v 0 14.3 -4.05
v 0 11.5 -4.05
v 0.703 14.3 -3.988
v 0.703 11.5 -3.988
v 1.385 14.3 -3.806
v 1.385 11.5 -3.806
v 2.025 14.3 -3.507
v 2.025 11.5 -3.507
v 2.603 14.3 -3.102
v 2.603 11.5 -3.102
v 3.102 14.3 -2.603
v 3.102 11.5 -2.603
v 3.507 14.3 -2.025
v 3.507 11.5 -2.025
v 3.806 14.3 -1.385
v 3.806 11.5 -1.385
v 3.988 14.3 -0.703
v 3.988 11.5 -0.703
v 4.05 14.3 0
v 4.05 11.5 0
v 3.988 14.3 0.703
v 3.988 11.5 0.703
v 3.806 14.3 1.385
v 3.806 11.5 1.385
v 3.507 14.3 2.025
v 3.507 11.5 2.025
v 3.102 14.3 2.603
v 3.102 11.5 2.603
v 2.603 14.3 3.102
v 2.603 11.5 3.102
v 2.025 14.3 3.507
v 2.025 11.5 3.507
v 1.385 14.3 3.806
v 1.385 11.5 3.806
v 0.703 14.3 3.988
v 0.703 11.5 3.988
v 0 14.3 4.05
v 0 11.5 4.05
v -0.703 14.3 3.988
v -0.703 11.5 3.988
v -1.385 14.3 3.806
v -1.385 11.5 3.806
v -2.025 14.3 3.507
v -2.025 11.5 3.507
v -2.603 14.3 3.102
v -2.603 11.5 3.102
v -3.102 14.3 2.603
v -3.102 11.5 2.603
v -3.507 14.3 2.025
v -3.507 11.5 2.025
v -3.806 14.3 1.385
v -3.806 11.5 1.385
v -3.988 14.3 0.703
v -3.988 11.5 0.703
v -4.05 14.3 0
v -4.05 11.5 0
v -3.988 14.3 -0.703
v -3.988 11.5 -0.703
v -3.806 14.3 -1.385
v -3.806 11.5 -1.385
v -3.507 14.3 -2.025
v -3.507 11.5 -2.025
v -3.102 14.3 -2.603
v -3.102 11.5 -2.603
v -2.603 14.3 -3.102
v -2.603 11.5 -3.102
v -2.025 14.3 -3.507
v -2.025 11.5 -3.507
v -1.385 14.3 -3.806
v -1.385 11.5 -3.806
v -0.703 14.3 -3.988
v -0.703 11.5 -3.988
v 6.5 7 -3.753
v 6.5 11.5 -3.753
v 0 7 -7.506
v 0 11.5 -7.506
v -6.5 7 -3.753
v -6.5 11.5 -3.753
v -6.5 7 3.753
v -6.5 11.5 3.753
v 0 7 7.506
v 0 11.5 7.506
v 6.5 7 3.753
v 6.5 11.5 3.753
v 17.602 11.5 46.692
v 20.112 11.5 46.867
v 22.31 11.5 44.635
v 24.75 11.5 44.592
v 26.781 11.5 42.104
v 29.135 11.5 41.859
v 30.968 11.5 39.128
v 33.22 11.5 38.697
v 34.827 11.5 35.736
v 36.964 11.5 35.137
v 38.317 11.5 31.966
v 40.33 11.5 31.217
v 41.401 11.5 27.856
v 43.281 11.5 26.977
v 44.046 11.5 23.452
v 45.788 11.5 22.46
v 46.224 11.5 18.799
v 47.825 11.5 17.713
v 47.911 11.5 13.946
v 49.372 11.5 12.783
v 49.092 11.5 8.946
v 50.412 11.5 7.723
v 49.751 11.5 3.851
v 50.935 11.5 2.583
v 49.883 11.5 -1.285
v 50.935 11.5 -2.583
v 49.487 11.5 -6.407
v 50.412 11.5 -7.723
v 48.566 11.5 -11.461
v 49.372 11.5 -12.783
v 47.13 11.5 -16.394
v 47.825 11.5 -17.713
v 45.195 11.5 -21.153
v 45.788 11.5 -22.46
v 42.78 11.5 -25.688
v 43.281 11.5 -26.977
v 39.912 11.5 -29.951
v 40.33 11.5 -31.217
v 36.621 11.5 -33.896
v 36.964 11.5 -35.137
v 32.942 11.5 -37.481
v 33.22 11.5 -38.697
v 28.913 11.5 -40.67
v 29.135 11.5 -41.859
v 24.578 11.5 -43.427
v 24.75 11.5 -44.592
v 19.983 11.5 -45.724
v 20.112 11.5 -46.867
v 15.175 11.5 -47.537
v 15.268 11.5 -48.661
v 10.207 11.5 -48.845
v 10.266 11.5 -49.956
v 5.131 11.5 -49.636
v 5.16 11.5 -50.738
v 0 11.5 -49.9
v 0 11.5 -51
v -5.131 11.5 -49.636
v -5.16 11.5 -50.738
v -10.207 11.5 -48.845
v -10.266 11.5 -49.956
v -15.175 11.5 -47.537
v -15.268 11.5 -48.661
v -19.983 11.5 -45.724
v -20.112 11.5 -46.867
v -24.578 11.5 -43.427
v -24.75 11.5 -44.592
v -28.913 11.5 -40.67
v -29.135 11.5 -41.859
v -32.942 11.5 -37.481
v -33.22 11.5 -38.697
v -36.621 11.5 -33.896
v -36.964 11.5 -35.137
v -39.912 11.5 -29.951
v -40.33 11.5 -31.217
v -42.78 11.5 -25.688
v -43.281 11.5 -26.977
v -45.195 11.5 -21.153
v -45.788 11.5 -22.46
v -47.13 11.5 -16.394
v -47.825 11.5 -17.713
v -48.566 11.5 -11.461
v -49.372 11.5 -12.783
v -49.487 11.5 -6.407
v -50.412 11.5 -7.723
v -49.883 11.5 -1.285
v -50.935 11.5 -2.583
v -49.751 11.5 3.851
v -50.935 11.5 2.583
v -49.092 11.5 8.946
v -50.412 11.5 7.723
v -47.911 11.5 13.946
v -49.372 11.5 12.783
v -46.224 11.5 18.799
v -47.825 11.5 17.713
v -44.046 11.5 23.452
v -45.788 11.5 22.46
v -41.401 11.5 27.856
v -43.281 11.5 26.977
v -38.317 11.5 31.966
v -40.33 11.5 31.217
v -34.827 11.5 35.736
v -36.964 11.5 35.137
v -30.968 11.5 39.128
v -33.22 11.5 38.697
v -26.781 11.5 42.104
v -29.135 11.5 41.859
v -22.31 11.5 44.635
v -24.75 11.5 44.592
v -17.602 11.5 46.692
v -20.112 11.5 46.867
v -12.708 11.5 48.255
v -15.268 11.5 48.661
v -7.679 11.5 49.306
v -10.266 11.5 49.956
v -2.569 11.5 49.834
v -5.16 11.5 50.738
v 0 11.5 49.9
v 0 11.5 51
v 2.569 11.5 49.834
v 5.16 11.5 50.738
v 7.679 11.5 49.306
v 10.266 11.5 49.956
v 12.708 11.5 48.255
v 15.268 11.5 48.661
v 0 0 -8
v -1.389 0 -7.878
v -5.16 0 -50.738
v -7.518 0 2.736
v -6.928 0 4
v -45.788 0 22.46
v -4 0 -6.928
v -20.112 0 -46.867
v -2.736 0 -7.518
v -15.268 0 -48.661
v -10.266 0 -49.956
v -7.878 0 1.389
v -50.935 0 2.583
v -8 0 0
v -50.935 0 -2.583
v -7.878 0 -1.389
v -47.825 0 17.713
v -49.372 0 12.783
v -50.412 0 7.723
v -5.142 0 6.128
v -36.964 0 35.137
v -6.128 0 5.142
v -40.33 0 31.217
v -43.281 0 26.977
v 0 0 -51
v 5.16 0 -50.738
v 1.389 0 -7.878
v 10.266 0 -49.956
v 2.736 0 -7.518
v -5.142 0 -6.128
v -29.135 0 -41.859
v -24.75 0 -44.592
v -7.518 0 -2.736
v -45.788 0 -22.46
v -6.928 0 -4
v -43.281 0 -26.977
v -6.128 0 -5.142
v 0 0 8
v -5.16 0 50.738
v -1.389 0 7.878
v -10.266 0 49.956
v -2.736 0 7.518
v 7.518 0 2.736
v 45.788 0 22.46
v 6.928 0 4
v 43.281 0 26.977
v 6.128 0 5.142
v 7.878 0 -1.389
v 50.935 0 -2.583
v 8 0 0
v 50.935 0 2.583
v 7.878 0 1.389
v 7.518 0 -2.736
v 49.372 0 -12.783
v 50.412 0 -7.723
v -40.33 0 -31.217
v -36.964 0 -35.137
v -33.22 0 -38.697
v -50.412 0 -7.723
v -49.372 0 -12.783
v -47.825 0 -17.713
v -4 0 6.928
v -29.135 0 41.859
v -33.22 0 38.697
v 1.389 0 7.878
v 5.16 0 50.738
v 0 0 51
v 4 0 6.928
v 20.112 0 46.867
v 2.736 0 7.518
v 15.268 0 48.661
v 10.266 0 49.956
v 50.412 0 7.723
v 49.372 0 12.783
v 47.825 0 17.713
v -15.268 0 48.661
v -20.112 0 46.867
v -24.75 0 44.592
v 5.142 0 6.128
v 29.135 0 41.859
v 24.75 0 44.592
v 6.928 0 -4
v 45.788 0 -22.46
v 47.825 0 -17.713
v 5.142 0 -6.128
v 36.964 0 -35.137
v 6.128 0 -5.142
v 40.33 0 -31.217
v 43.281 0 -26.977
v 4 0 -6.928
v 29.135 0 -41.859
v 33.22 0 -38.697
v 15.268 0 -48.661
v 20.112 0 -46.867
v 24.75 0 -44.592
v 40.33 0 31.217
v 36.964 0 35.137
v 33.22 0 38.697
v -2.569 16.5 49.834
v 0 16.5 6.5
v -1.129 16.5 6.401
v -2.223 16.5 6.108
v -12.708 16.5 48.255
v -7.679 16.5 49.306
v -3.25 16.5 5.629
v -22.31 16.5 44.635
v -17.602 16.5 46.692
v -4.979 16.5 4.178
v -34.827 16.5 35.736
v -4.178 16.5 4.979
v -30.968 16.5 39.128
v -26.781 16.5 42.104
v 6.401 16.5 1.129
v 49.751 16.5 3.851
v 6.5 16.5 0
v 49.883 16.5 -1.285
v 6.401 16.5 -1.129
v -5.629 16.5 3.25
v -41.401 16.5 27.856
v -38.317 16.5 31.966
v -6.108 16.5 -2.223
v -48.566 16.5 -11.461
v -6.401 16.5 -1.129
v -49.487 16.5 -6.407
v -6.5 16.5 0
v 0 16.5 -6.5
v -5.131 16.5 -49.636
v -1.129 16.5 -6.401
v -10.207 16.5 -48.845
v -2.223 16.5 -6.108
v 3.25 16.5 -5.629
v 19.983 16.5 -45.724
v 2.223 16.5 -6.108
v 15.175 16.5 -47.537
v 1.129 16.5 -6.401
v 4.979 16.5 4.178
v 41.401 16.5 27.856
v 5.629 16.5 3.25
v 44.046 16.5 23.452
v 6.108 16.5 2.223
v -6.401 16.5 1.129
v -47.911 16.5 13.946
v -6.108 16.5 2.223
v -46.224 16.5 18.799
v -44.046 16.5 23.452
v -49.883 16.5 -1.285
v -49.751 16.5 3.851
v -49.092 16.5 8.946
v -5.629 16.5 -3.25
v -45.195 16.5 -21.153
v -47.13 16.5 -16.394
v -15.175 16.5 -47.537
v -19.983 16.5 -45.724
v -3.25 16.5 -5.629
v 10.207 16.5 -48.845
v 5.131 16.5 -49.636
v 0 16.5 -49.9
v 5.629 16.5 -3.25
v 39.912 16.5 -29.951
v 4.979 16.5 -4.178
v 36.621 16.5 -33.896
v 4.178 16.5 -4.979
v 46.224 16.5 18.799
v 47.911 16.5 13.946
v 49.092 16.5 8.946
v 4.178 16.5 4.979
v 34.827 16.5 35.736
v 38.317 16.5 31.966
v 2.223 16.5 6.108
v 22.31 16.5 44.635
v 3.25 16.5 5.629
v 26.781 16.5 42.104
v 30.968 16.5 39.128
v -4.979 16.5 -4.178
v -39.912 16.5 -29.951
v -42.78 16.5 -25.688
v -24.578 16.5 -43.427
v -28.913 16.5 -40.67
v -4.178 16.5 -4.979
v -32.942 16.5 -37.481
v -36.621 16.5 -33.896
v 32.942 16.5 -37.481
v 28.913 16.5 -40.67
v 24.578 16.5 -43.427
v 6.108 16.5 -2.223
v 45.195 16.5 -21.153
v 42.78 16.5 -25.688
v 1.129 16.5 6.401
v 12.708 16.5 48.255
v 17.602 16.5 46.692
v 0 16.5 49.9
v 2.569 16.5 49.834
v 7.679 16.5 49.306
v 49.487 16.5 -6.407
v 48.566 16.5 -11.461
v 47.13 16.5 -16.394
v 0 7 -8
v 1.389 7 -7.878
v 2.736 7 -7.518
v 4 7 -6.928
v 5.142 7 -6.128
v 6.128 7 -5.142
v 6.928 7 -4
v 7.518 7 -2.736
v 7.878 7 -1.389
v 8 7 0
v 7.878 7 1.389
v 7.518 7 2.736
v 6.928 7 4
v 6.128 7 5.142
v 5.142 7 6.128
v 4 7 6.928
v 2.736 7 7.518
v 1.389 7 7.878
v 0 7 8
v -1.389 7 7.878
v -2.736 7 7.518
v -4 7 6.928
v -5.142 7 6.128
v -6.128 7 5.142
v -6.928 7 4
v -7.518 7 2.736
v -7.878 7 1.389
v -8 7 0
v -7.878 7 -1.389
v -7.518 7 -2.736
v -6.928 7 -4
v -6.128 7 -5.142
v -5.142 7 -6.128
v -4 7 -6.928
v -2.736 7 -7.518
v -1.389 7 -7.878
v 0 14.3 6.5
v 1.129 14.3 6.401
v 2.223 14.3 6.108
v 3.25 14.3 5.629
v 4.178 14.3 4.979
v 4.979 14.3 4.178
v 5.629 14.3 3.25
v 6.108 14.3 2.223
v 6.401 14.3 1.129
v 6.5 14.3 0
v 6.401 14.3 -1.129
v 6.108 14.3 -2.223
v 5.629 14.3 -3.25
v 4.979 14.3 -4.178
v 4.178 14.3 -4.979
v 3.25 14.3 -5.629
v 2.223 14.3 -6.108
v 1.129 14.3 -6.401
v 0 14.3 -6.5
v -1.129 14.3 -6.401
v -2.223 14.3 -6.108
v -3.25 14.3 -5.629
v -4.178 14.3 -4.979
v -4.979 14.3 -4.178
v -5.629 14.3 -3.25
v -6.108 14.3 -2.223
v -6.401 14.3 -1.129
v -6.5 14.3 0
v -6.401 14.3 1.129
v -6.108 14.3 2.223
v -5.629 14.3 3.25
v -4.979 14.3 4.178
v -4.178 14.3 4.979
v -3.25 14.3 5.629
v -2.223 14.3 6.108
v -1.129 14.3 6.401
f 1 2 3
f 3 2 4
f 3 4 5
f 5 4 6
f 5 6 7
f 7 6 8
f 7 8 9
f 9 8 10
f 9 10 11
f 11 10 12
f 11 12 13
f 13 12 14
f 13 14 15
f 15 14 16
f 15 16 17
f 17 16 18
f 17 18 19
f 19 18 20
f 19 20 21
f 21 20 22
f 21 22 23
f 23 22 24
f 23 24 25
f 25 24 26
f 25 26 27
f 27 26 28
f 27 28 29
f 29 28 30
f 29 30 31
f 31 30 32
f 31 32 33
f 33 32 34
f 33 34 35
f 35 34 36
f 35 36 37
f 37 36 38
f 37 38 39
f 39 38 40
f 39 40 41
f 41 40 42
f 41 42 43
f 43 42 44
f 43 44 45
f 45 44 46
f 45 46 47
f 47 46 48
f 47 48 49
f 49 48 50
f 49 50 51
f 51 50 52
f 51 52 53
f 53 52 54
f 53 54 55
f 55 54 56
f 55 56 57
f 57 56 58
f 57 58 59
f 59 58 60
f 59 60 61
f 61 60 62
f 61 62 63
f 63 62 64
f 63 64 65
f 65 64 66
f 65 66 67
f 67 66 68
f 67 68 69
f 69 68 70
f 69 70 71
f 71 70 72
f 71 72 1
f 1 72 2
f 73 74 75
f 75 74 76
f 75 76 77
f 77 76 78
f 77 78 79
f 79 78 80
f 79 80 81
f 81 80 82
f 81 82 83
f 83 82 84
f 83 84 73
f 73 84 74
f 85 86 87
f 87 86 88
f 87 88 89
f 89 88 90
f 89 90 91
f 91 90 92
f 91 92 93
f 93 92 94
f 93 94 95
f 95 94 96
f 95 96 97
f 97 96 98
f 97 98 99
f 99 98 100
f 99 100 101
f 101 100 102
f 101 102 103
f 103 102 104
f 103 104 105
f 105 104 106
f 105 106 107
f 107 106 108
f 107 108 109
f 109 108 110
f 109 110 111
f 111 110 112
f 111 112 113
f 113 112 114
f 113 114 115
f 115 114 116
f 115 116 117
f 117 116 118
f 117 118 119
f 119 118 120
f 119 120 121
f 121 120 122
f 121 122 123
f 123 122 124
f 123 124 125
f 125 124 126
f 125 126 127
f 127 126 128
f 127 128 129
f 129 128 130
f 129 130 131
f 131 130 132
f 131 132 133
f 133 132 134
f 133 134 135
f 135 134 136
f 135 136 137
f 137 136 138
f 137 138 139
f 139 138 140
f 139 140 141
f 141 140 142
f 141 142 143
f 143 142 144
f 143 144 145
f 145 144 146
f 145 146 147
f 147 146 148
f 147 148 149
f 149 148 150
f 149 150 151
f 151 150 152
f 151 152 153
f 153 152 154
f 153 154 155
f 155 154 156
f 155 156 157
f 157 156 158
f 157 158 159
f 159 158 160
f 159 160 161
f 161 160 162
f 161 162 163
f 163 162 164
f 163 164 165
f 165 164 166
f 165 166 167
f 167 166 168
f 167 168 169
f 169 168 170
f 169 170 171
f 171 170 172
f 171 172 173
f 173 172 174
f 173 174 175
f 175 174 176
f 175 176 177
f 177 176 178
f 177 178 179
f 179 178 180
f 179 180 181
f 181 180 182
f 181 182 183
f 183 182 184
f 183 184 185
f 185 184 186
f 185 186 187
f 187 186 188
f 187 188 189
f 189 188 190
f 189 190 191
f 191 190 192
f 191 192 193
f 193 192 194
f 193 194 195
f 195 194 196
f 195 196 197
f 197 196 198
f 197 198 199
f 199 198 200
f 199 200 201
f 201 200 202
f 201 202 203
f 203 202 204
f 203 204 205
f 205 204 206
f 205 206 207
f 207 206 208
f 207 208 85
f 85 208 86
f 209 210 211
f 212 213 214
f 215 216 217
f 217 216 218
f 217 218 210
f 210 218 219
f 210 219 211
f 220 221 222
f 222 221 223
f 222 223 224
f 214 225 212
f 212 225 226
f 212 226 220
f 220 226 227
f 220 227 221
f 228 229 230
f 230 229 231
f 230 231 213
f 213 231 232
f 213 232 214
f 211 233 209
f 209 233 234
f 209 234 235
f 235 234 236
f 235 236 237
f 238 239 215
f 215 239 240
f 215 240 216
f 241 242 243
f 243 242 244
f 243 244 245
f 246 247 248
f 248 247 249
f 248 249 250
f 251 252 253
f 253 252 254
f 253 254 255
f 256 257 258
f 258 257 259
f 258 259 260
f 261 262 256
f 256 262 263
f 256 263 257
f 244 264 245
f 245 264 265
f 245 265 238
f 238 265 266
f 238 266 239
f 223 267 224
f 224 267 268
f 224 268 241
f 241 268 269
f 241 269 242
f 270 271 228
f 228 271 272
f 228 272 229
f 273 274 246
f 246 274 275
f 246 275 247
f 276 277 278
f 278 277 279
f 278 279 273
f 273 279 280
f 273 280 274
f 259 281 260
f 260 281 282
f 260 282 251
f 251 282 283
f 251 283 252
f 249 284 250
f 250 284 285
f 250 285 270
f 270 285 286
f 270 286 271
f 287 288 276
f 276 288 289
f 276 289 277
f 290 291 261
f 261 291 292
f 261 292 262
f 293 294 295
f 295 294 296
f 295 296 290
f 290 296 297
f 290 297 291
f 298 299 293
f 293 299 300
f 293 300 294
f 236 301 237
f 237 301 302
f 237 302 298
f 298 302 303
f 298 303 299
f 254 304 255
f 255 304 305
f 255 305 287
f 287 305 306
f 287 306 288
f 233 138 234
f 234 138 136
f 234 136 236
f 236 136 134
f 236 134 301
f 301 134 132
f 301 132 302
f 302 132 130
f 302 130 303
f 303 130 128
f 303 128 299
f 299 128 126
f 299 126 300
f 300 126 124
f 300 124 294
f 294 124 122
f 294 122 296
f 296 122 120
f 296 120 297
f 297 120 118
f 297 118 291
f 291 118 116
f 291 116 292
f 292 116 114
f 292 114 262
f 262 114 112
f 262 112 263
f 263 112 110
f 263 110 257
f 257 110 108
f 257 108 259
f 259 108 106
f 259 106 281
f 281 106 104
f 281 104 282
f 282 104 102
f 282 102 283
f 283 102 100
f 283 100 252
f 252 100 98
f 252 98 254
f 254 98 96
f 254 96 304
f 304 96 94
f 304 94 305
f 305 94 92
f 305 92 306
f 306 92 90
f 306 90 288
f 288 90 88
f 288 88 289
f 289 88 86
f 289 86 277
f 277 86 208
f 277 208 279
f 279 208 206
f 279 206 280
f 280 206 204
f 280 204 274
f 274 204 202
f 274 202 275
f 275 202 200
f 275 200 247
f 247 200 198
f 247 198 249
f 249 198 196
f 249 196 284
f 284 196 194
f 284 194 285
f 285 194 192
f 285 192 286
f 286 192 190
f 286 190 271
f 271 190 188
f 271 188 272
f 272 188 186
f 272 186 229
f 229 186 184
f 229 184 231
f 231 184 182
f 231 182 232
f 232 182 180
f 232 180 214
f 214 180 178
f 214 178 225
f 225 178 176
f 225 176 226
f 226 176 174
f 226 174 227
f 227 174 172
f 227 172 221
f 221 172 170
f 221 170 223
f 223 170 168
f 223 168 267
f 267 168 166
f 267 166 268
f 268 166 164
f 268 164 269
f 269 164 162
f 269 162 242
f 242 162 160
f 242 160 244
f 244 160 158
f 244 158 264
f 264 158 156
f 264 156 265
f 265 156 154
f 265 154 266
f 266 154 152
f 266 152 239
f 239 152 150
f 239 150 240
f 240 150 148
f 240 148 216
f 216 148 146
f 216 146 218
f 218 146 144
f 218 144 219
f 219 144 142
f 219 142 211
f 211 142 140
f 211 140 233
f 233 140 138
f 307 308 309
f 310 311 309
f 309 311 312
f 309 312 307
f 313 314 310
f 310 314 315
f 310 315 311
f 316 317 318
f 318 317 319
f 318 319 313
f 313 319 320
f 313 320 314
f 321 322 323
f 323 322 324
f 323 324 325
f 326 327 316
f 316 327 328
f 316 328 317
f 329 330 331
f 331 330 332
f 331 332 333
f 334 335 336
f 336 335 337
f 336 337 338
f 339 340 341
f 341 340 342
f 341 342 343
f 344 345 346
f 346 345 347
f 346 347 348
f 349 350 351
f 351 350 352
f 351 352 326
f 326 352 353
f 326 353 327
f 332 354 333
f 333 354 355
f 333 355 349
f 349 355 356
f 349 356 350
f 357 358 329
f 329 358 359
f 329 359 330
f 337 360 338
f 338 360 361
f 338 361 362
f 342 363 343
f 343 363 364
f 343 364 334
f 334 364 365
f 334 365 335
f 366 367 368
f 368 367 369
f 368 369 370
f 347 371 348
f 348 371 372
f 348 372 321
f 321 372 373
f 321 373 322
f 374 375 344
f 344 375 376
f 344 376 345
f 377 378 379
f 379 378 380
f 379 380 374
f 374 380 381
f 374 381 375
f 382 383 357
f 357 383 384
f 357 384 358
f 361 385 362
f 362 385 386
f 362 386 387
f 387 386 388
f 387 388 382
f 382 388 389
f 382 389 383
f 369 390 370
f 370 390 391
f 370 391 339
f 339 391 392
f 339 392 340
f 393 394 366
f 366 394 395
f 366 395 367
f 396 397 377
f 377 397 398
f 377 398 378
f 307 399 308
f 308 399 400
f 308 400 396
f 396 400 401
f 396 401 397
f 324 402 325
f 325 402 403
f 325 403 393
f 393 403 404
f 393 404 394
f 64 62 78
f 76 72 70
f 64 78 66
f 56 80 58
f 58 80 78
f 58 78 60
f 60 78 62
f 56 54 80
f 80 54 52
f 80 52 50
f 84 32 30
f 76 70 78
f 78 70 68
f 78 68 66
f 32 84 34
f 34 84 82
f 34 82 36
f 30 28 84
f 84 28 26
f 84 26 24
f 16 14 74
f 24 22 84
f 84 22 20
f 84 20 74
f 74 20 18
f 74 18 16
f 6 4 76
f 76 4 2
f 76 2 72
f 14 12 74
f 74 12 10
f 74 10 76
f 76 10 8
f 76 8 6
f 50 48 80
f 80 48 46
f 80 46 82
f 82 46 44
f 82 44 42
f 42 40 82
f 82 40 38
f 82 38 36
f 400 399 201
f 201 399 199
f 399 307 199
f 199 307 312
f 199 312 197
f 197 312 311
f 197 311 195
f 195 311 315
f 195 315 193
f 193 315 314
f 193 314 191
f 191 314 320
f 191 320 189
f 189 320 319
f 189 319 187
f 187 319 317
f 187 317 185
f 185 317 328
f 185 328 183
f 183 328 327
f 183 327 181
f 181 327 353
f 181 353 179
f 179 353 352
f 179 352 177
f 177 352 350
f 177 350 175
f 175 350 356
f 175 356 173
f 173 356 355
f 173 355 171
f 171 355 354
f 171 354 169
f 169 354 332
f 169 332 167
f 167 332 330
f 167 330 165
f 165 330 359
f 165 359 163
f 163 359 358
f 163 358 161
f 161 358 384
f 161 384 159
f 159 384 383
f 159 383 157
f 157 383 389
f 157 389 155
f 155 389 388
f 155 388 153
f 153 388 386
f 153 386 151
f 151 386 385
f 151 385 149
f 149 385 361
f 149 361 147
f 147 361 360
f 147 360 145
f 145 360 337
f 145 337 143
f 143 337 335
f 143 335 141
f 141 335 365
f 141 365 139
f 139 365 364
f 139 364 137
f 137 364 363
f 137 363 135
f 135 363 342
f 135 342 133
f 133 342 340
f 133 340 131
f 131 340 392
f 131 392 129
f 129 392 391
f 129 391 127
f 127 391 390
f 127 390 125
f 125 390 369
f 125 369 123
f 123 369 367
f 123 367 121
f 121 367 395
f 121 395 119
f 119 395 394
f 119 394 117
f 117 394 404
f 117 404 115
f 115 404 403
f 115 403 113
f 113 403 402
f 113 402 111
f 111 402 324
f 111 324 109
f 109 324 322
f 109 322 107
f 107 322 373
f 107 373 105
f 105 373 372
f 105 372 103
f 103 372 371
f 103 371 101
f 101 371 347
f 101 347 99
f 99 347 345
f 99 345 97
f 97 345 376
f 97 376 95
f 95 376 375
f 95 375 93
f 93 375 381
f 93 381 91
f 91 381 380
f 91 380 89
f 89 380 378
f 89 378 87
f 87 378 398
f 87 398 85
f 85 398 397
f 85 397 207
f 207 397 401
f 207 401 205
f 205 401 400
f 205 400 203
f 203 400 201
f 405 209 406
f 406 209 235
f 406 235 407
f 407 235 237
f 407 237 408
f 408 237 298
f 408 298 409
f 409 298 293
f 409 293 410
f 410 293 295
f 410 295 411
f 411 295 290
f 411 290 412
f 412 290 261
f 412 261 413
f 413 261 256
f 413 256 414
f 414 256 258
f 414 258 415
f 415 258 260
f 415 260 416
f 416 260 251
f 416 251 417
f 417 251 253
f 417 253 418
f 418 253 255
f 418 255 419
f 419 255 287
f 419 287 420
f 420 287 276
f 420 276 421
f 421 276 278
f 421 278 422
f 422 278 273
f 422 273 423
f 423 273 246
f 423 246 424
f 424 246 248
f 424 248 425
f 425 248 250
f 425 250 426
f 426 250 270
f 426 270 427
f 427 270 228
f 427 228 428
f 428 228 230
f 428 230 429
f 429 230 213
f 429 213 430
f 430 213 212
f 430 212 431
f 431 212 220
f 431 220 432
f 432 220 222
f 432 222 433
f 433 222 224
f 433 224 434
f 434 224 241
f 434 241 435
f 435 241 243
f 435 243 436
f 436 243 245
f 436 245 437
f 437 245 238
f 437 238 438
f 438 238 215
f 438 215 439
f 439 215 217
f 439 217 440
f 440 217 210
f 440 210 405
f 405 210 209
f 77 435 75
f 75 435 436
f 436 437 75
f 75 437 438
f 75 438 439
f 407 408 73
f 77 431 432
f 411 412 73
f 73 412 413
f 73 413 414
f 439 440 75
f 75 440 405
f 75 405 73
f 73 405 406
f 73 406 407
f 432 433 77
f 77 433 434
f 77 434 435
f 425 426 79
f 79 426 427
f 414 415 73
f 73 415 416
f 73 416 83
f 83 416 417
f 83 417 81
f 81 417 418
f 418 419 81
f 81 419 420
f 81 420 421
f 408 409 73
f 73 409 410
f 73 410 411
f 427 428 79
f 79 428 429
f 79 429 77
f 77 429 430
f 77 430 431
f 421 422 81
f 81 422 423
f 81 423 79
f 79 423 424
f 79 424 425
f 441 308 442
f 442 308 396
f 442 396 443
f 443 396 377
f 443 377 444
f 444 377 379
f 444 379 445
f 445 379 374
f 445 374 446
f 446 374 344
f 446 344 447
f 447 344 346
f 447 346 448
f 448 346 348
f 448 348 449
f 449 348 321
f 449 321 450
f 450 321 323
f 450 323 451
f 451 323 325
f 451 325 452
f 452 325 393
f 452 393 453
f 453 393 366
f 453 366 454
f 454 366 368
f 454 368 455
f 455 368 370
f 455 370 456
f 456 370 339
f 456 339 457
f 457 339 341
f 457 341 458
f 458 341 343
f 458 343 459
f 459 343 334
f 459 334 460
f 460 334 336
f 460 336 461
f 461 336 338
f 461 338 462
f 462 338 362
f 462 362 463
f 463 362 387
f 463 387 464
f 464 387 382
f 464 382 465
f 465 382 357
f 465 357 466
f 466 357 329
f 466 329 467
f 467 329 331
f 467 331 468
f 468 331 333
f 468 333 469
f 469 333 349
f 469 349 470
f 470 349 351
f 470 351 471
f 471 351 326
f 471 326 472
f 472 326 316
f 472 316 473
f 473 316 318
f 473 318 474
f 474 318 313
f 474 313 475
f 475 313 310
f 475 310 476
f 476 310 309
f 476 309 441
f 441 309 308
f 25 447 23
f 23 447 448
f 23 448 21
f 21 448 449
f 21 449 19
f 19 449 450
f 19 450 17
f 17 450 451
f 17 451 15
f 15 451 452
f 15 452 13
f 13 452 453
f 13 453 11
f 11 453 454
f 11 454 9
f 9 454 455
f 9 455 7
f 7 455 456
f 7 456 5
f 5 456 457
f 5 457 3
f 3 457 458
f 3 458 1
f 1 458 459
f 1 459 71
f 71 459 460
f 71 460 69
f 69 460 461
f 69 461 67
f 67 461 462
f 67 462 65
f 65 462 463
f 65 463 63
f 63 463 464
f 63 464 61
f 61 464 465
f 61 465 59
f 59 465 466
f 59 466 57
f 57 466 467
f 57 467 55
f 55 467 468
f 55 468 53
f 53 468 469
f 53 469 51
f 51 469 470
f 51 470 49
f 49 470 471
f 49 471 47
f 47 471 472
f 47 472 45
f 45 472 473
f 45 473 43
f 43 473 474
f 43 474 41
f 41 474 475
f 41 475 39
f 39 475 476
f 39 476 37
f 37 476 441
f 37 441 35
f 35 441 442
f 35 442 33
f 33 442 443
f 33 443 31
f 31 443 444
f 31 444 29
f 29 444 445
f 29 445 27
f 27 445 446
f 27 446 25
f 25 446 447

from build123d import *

# Parameters (mm, degrees)
SKETCH1_R           = 51
BOSS_EXTRUDE1_DEPTH = 11.5
SKETCH2_R           = 49.9
SKETCH2_R_2         = 4.05
BOSS_EXTRUDE2_DEPTH = 5
SKETCH3_R           = 8
CUT_EXTRUDE1_DEPTH  = 7
SKETCH4_R           = 6.5
CUT_EXTRUDE2_DEPTH  = 2.2


with BuildPart() as part:
    # Sketch1 → Boss-Extrude1 (new body)
    with BuildSketch(Plane(origin=(0, 0, 0), x_dir=(1, 0, 0), z_dir=(0, 1, 0))):
        with Locations(Location((0, 0, 0), (0, 0, 270))):
            Circle(SKETCH1_R)
        Polygon((0, 7.505553499), (-6.5, 3.75277675), (-6.5, -3.75277675), (0, -7.505553499), (6.5, -3.75277675), (6.5, 3.75277675), align=None, mode=Mode.SUBTRACT)
    extrude(amount=BOSS_EXTRUDE1_DEPTH)

    # Sketch2 → Boss-Extrude2 (add)
    with BuildSketch(Plane(origin=(0, 11.5, 0), x_dir=(1, 0, 0), z_dir=(0, 1, 0))):
        with Locations(Location((0, 0, 0), (0, 0, 270))):
            Circle(SKETCH2_R)
        with Locations(Location((0, 0, 0), (0, 0, 270))):
            Circle(SKETCH2_R_2, mode=Mode.SUBTRACT)
    extrude(amount=BOSS_EXTRUDE2_DEPTH)

    # Sketch3 → Cut-Extrude1 (cut)
    with BuildSketch(Plane.XZ):
        with Locations(Location((0, 0, 0), (0, 0, 270))):
            Circle(SKETCH3_R)
    extrude(amount=-CUT_EXTRUDE1_DEPTH, mode=Mode.SUBTRACT)

    # Sketch4 → Cut-Extrude2 (cut)
    with BuildSketch(Plane(origin=(0, 16.5, 0), x_dir=(1, 0, 0), z_dir=(0, 1, 0))):
        with Locations(Location((0, 0, 0), (0, 0, 270))):
            Circle(SKETCH4_R)
    extrude(amount=-CUT_EXTRUDE2_DEPTH, mode=Mode.SUBTRACT)


solid = part.part
